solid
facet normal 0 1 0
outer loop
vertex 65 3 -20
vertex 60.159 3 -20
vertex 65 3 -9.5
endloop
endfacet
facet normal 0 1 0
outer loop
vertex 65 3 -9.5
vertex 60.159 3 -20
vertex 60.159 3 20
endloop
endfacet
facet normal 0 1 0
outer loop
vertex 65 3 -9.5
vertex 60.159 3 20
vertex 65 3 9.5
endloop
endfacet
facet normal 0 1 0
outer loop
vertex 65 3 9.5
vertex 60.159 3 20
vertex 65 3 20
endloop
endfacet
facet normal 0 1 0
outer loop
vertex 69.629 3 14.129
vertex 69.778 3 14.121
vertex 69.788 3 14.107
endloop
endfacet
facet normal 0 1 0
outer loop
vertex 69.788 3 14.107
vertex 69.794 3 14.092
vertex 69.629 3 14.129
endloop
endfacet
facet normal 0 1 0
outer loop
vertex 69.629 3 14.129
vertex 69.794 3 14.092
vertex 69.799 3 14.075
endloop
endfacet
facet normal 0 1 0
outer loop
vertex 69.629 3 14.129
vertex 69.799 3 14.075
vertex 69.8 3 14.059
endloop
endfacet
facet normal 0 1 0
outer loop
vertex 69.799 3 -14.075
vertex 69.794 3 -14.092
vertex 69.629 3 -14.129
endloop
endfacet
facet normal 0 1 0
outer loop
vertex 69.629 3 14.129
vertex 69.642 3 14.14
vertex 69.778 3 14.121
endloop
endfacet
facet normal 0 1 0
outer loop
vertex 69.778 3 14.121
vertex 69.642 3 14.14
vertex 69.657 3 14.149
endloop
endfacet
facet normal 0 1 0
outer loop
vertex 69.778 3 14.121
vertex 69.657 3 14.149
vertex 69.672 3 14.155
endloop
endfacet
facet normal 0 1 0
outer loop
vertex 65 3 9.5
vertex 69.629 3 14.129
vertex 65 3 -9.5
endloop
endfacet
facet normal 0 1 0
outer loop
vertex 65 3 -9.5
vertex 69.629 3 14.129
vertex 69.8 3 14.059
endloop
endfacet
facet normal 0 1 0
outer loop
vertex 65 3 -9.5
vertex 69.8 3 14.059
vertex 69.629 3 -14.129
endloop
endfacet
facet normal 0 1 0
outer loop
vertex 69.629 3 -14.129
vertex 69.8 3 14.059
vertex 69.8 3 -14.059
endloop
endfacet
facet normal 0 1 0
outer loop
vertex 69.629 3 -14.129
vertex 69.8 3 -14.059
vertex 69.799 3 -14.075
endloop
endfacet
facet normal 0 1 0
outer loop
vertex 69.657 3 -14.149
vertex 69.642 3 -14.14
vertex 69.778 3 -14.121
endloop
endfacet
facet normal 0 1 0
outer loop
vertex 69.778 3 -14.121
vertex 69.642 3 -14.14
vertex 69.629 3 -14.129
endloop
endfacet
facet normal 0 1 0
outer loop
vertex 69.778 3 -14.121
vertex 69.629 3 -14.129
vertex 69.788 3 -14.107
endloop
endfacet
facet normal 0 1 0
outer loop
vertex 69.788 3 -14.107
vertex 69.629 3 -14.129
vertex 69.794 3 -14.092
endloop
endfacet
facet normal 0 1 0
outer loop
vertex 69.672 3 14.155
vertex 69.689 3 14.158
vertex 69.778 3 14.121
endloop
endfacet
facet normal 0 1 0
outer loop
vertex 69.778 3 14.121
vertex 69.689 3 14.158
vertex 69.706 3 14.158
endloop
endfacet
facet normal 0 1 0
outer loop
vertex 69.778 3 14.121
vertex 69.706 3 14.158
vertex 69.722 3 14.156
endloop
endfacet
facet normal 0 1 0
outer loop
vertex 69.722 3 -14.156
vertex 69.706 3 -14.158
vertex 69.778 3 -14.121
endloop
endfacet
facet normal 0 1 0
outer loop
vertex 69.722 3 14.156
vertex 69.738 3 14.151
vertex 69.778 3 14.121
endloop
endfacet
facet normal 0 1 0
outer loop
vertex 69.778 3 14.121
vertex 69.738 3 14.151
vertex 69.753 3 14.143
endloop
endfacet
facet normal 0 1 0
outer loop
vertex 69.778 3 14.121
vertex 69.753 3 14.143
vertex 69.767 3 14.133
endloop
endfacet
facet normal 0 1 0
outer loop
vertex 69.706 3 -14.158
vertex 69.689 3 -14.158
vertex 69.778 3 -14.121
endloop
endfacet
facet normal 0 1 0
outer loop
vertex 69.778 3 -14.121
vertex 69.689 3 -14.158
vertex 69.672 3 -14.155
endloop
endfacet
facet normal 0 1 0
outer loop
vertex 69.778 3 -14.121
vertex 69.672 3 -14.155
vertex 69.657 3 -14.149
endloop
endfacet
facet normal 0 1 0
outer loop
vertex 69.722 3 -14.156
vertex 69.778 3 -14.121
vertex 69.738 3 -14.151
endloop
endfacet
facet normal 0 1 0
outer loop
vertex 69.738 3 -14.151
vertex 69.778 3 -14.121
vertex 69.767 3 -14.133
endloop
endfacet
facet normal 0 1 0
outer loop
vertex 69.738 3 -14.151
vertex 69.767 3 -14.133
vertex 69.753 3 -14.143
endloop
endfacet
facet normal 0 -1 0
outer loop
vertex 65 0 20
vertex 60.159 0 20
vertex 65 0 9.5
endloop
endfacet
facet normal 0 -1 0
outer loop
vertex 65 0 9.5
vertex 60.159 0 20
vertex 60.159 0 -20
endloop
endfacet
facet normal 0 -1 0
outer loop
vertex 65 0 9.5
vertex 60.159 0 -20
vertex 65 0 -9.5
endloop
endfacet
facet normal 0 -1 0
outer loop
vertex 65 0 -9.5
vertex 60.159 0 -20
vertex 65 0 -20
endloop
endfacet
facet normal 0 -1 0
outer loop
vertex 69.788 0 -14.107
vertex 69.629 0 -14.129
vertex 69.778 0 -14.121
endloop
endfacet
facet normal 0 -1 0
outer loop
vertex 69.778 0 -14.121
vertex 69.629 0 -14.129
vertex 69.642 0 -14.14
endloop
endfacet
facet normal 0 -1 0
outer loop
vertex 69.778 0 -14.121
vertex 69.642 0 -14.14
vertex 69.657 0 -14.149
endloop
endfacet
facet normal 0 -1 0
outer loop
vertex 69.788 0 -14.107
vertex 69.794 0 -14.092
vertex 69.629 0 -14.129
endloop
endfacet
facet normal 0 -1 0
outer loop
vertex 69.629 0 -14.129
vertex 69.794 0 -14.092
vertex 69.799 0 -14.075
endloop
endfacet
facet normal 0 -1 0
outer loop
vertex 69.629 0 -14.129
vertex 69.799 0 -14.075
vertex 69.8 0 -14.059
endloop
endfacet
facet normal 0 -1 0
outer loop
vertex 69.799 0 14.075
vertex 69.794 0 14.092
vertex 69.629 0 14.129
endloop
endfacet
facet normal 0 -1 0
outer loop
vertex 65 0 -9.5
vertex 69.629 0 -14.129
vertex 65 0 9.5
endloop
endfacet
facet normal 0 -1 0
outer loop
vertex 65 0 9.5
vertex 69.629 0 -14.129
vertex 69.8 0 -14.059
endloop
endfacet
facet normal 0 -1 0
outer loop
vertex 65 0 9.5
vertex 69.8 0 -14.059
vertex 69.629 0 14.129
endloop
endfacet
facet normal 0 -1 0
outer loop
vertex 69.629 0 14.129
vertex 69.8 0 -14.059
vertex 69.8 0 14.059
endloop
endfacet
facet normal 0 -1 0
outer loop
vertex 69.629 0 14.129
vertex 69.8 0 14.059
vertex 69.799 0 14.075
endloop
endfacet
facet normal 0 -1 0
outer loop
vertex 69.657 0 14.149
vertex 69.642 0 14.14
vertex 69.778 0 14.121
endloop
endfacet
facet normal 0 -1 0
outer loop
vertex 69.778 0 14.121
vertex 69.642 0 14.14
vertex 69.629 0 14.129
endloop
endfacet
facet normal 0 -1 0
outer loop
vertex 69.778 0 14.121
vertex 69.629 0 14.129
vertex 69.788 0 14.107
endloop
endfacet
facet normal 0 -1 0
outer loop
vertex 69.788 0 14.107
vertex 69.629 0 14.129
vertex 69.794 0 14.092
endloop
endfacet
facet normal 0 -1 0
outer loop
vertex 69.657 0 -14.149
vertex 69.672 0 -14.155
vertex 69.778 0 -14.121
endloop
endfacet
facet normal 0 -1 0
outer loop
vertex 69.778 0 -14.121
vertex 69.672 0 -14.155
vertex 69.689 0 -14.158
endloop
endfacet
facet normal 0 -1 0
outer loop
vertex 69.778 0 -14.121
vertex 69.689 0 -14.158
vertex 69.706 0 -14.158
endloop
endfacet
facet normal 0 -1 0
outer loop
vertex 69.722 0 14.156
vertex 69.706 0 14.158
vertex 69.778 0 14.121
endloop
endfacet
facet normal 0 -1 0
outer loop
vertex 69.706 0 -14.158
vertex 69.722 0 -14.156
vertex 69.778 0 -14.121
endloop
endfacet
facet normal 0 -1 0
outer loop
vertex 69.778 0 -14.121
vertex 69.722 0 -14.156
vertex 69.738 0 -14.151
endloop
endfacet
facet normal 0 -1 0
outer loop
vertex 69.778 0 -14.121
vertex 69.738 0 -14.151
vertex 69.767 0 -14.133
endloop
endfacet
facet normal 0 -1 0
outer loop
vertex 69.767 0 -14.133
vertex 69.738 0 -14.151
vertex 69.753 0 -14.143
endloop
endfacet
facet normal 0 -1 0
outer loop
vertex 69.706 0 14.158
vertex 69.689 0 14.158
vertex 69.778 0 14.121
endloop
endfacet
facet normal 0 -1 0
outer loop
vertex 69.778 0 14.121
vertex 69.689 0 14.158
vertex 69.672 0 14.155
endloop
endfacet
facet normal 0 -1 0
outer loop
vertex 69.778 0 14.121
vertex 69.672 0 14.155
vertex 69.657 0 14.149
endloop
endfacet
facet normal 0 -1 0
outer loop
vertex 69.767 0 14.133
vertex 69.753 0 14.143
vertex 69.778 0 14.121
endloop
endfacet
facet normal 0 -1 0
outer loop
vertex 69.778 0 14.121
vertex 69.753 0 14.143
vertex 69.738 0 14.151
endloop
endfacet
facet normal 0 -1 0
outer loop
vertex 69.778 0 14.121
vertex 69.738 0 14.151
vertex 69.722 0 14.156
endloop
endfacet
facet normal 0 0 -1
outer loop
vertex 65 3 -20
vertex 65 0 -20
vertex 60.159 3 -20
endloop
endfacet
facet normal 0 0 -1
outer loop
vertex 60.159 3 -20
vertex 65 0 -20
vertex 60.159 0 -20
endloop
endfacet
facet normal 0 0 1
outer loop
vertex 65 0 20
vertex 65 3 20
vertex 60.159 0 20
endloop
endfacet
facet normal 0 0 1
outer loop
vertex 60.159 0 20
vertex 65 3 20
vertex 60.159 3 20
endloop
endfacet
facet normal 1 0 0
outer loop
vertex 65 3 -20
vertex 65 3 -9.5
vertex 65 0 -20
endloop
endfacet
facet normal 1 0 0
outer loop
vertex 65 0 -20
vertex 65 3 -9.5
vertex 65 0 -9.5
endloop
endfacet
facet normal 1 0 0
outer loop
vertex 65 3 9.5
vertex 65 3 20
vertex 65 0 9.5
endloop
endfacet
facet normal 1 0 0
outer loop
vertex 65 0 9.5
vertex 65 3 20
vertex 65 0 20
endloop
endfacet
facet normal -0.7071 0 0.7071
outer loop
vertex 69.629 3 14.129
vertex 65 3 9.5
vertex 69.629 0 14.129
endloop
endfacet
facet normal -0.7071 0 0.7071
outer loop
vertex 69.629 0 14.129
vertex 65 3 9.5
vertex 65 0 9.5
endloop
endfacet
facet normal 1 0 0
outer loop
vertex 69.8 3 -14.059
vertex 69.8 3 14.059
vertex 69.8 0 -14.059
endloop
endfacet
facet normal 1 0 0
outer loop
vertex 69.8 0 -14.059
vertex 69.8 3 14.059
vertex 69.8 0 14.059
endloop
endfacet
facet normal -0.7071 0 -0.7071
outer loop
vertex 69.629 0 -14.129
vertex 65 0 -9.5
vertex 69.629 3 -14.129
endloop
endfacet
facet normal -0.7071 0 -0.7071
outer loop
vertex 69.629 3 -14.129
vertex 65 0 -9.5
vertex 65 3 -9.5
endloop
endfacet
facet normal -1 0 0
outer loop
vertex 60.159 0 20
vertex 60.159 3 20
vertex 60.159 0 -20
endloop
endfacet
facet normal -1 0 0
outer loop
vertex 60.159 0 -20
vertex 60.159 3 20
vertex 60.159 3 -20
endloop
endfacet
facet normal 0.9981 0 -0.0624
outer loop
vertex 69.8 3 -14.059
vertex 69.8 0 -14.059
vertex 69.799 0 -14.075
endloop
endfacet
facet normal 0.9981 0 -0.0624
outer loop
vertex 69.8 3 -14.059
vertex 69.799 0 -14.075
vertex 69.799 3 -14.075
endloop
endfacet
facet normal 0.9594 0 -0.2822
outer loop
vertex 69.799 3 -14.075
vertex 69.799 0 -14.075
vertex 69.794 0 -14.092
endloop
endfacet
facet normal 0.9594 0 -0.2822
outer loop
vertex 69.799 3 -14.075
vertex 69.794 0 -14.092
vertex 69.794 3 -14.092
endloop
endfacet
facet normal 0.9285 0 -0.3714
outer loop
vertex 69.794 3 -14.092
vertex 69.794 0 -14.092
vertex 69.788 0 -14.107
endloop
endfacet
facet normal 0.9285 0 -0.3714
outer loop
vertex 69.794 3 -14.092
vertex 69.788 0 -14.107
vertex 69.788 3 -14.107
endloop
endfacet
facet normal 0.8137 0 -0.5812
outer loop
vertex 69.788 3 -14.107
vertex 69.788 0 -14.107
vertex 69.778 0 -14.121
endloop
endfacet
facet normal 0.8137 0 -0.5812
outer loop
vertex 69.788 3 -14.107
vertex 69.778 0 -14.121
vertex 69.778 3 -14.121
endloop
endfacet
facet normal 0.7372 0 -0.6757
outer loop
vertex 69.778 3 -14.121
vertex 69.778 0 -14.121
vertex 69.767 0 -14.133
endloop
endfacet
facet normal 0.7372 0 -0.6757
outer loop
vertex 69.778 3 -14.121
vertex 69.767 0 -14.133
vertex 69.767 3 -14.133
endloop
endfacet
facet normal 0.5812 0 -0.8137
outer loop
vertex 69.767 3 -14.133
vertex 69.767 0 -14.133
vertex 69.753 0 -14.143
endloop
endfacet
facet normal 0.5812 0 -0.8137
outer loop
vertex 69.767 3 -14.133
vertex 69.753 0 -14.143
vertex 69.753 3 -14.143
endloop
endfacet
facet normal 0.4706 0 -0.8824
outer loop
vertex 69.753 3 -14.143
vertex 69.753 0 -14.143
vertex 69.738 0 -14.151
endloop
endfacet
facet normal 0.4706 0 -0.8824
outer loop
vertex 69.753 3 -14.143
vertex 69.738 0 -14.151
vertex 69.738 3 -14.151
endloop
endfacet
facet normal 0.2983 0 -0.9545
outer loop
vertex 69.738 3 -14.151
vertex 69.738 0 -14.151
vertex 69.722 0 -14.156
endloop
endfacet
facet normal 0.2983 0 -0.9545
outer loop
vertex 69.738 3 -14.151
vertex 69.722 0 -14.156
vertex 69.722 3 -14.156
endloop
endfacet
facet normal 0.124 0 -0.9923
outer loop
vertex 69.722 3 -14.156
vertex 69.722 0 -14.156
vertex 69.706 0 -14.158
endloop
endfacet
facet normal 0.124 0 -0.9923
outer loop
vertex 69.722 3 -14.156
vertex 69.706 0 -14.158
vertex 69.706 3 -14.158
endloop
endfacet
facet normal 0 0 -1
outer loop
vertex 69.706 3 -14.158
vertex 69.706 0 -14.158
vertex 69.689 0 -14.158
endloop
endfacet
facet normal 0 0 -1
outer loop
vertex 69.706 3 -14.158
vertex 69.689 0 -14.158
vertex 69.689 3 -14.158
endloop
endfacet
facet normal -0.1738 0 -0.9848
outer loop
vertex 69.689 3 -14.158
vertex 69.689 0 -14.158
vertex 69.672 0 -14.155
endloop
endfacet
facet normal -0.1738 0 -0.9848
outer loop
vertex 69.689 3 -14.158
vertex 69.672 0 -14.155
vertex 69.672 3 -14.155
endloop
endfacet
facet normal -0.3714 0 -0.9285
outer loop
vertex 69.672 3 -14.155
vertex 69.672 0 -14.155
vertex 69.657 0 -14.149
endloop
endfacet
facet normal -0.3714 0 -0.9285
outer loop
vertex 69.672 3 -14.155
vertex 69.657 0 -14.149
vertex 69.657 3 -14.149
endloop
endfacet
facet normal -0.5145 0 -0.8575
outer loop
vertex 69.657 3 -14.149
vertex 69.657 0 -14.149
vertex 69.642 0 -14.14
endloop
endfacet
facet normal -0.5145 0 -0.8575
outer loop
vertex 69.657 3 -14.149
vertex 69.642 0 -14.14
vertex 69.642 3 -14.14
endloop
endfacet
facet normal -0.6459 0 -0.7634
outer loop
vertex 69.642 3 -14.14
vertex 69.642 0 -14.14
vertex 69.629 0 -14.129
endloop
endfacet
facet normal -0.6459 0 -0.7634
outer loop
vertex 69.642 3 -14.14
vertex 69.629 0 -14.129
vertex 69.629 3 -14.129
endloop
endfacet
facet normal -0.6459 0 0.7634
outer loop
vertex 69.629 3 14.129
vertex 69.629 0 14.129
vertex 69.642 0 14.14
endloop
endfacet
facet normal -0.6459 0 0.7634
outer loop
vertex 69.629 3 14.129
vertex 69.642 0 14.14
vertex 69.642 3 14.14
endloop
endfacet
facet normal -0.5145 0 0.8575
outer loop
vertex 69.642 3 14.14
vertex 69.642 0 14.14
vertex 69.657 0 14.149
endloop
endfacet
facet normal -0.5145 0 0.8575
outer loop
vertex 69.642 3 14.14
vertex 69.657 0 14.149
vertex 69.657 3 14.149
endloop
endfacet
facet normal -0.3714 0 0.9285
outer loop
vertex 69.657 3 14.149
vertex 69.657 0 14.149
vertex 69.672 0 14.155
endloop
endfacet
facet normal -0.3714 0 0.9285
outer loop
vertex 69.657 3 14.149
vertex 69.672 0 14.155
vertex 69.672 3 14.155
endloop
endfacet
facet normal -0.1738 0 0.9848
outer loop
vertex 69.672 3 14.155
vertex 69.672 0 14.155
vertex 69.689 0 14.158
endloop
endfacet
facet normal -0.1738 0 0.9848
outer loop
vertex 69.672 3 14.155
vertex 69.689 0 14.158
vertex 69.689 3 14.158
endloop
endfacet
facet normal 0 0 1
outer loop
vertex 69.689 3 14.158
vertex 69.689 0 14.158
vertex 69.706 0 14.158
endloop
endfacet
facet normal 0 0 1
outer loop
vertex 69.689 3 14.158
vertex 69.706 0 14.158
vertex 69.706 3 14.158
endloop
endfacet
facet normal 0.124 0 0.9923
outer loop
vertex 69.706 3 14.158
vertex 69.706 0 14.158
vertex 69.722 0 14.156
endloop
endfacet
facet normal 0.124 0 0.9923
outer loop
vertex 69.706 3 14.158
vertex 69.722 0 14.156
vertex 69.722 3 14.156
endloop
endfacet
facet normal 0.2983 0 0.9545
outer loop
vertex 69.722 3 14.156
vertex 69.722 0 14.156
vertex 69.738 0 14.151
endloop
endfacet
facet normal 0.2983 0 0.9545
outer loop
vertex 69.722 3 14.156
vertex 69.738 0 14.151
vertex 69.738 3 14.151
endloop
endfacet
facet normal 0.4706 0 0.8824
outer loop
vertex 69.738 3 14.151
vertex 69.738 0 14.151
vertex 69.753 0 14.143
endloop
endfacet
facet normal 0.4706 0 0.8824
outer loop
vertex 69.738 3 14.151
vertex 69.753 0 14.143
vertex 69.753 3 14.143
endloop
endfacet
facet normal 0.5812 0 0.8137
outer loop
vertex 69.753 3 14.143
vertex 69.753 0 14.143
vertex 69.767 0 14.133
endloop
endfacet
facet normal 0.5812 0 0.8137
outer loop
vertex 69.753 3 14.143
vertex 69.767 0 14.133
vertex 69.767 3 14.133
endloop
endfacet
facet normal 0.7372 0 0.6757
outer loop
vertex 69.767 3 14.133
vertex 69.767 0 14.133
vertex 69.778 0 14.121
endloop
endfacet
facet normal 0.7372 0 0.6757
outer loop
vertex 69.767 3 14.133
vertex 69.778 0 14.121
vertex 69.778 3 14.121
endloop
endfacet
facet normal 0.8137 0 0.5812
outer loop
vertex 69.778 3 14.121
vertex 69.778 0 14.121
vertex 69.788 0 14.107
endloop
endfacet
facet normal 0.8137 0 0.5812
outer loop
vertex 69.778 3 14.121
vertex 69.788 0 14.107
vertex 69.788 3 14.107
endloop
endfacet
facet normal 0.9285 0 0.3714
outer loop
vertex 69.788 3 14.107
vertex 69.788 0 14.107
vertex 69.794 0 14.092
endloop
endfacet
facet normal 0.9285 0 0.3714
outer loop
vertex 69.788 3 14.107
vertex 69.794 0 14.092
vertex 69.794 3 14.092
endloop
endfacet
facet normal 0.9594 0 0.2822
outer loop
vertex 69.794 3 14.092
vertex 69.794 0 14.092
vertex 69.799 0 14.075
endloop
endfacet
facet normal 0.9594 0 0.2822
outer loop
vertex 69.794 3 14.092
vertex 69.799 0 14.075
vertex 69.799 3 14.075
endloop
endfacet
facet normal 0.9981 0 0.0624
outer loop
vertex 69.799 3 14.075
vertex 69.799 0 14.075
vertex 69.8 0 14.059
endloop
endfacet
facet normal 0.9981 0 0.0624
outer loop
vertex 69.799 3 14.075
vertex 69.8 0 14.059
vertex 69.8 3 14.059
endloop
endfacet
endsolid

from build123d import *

# Parameters (mm, degrees)
CROQUIS1_R                 = 11
CROQUIS1_R_2               = 2
CROQUIS1_W                 = 30
CROQUIS1_H                 = 3
SALIENTE_EXTRUIR1_DEPTH    = 3
CROQUIS2_R                 = 13
CROQUIS2_R_2               = 11
SALIENTE_EXTRUIR2_DEPTH    = 4
CROQUIS3_R                 = 13
CROQUIS3_R_2               = 9
SALIENTE_EXTRUIR3_DEPTH    = 2
CHAFL_N1_SIZE              = 2
CHAFL_N2_SIZE              = 10
CORTAR_EXTRUIR1_DEPTH      = 10
CORTAR_EXTRUIR1_DEPTH_BACK = 10
CROQUIS4_W                 = 128.833311542
CROQUIS4_H                 = 58.233807115
REDONDEO1_R                = 0.1


with BuildPart() as part:
    # Croquis1 → Saliente-Extruir1 (new body)
    with BuildSketch(Plane(origin=(0, 0, 0), x_dir=(1, 0, 0), z_dir=(0, 1, 0))):
        Polygon((65, 9.5), (69.8, 14.3), (69.8, -14.3), (65, -9.5), (65, -20), (-65, -20), (-65, 20), (65, 20), align=None)
        with Locations((-50.129942902, 0)):
            Circle(CROQUIS1_R, mode=Mode.SUBTRACT)
        with Locations((-28.595127909, 0)):
            Circle(CROQUIS1_R_2, mode=Mode.SUBTRACT)
        with Locations((-13.595127909, 0)):
            Circle(CROQUIS1_R_2, mode=Mode.SUBTRACT)
        with Locations((50, 0)):
            Circle(CROQUIS1_R_2, mode=Mode.SUBTRACT)
        with Locations((25, 11)):
            Rectangle(CROQUIS1_W, CROQUIS1_H, mode=Mode.SUBTRACT)
        with Locations((25, -11)):
            Rectangle(CROQUIS1_W, CROQUIS1_H, mode=Mode.SUBTRACT)
    extrude(amount=SALIENTE_EXTRUIR1_DEPTH)

    # Croquis2 → Saliente-Extruir2 (add)
    with BuildSketch(Plane(origin=(0, 3, 0), x_dir=(1, 0, 0), z_dir=(0, 1, 0))):
        with Locations((-50.129942902, 0)):
            Circle(CROQUIS2_R)
        with Locations((-50.129942902, 0)):
            Circle(CROQUIS2_R_2, mode=Mode.SUBTRACT)
    extrude(amount=SALIENTE_EXTRUIR2_DEPTH)

    # Croquis3 → Saliente-Extruir3 (add)
    with BuildSketch(Plane(origin=(0, 7, 0), x_dir=(1, 0, 0), z_dir=(0, 1, 0))):
        with Locations((-50.129942902, 0)):
            Circle(CROQUIS3_R)
        with Locations((-50.129942902, 0)):
            Circle(CROQUIS3_R_2, mode=Mode.SUBTRACT)
    extrude(amount=SALIENTE_EXTRUIR3_DEPTH)

    # Chaflán1
    chafl_n1_edges = [part.edges().sort_by_distance(p)[0] for p in [
        (-63.129942902, 9, 0),
    ]]
    chamfer(chafl_n1_edges, length=CHAFL_N1_SIZE)

    # Chaflán2
    chafl_n2_edges = [part.edges().sort_by_distance(p)[0] for p in [
        (-65, 1.5, 20),
        (-65, 1.5, -20),
    ]]
    chamfer(chafl_n2_edges, length=CHAFL_N2_SIZE)

    # Croquis4 → Cortar-Extruir1 (cut, two sides: drawn at the far end of the back side and taken through both)
    with BuildSketch(Plane(origin=(0, 3, 0), x_dir=(1, 0, 0), z_dir=(0, 1, 0)).offset(-CORTAR_EXTRUIR1_DEPTH_BACK)):
        with Locations((-4.257997369, -0.71893589)):
            Rectangle(CROQUIS4_W, CROQUIS4_H)
    extrude(amount=CORTAR_EXTRUIR1_DEPTH + CORTAR_EXTRUIR1_DEPTH_BACK, mode=Mode.SUBTRACT)

    # Redondeo1
    redondeo1_edges = [part.edges().sort_by_distance(p)[0] for p in [
        (69.8, 1.5, -14.3),
        (69.8, 1.5, 14.3),
    ]]
    fillet(redondeo1_edges, radius=REDONDEO1_R)


solid = part.part
